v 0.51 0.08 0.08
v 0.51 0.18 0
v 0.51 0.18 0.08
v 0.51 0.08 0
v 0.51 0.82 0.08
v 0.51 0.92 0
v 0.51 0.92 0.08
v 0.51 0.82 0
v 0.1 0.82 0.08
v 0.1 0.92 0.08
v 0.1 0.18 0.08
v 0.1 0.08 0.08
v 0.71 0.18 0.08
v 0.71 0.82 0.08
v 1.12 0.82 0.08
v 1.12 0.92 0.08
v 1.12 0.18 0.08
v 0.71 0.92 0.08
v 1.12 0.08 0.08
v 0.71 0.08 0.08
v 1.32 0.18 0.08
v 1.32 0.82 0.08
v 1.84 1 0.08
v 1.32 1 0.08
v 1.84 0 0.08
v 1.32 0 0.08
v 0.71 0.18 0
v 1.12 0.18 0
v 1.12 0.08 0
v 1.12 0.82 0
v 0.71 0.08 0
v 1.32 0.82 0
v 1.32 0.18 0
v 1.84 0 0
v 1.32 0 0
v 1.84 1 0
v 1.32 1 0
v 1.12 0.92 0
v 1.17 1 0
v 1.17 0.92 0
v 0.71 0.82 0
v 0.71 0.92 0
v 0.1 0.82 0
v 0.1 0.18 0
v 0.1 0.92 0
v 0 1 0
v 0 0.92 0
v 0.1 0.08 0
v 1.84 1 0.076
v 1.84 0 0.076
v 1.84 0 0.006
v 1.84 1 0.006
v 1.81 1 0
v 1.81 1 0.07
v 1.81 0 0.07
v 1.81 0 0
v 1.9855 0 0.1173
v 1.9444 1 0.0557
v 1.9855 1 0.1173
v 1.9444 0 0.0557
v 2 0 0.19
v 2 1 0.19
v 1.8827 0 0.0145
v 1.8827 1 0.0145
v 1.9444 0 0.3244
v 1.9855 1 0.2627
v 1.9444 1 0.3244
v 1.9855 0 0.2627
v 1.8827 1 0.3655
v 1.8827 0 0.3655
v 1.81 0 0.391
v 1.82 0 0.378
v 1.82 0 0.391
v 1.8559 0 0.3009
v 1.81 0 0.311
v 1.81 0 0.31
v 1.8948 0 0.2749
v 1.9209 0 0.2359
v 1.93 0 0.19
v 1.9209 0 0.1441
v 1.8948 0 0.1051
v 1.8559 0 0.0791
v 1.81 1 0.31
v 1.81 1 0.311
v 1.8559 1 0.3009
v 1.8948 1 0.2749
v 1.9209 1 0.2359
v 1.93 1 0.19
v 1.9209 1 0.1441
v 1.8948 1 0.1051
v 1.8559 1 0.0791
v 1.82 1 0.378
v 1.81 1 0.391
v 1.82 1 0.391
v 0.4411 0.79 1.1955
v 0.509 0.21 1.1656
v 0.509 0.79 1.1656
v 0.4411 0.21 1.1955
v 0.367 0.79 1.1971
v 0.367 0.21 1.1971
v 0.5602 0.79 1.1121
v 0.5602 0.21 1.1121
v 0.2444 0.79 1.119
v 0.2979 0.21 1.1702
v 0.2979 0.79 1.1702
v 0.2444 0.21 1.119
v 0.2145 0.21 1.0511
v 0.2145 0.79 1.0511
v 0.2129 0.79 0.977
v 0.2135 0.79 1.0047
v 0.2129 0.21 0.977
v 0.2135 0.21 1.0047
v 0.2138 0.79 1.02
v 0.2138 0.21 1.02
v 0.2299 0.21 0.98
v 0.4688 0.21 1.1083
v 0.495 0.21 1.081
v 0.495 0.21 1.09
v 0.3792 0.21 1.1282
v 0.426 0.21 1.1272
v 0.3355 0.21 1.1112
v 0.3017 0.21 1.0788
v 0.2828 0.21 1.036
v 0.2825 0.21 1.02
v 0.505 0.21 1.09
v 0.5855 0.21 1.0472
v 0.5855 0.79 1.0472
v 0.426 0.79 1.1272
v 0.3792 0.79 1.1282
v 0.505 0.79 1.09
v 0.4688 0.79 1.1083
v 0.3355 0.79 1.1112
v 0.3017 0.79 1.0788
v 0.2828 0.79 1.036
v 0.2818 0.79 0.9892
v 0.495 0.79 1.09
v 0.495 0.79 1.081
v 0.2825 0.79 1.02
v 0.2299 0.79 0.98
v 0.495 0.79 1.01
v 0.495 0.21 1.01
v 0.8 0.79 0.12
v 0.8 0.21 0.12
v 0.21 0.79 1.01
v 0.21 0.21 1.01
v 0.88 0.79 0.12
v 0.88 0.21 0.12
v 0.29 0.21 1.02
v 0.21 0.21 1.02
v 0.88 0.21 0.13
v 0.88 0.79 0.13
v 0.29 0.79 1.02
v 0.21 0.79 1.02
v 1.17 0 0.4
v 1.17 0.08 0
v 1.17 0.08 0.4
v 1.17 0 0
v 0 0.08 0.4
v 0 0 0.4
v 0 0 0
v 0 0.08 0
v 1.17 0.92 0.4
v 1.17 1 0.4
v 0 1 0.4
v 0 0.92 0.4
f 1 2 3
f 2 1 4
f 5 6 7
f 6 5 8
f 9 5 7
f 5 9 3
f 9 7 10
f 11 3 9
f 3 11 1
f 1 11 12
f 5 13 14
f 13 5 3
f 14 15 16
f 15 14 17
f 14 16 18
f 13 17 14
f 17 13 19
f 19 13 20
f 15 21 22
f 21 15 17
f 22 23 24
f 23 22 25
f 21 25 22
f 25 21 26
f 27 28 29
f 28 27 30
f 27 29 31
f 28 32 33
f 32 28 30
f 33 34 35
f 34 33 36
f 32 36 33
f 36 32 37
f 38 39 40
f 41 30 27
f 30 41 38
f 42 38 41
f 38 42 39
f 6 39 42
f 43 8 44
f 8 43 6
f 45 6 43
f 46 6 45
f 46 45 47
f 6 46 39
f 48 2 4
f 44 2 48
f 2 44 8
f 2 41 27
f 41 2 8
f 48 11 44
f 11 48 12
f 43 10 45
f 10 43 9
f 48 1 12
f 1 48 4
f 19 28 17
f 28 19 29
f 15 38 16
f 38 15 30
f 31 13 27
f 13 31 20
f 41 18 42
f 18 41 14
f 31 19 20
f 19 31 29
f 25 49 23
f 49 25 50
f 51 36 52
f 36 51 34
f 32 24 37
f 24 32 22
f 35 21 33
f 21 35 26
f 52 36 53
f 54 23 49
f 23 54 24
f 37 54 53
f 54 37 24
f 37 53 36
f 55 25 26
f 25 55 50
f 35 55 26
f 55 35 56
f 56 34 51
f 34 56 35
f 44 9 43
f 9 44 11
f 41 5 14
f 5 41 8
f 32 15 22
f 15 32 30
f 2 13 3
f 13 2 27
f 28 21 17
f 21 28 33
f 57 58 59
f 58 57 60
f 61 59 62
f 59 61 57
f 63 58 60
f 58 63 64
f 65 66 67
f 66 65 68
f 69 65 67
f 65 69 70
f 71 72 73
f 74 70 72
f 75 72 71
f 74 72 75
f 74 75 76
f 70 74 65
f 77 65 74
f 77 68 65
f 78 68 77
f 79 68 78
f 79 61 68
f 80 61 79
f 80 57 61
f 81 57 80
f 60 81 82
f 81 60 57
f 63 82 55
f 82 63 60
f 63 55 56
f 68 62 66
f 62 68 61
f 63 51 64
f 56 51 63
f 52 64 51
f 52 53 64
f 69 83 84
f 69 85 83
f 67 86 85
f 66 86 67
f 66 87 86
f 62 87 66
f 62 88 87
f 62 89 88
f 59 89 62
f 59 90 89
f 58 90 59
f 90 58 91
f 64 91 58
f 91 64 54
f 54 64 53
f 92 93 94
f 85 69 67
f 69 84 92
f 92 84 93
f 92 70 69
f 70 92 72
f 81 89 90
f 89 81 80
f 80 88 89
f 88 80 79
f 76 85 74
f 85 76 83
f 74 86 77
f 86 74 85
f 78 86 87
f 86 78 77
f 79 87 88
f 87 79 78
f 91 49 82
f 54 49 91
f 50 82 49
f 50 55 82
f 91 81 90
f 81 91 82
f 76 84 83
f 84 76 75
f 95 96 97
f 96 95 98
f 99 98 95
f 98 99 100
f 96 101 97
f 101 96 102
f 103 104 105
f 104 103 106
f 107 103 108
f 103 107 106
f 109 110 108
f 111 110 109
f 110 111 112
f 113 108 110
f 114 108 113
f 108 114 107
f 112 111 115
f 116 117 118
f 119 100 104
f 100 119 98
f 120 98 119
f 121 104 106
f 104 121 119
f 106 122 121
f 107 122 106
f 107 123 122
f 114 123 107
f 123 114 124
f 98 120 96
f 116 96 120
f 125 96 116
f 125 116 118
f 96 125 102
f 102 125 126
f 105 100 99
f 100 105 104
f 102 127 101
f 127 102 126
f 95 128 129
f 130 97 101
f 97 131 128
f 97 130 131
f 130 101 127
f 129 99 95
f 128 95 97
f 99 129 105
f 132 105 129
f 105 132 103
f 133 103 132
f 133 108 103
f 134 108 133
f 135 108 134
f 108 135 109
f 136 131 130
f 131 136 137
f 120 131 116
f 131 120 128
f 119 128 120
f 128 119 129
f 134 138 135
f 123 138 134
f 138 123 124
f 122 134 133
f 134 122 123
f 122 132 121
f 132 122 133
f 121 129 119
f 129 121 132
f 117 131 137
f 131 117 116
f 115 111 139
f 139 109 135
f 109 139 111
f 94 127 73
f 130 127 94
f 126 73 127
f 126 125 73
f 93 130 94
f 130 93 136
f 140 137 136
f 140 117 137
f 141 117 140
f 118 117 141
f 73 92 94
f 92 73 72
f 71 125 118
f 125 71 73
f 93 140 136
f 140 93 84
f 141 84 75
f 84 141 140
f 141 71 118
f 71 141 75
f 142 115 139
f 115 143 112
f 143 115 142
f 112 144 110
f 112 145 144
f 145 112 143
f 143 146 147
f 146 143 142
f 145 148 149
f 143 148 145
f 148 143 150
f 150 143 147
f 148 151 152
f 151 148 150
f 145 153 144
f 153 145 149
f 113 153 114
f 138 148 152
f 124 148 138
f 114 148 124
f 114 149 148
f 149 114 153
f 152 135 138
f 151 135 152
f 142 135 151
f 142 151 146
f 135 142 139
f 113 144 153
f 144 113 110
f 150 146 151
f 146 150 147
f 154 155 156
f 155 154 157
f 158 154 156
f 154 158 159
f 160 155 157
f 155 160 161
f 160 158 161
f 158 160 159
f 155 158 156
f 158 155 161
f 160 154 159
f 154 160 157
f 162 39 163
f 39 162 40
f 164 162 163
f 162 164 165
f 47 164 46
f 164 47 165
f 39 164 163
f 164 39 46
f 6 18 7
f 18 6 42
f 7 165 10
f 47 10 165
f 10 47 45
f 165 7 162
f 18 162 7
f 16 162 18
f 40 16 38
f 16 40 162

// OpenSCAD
ff = 0.01;

thick = 0.08;

total_h = 1.2;

spring_arc_r = 0.19;

module pads(t=thick) {
  translate([0.1, (1-0.84)/2, 0]) {
    cube([0.41, 0.84, t]);
    translate([0.61, 0, 0]) cube([0.41, 0.84, t]);
    translate([1.22, -(1-0.84)/2, 0]) cube([0.52, 1, t]);
  }
}

module footprint() {
  %color("green") pads(t=ff);
}

module floor() {
 pads(thick);
 translate([0.1, (1-0.64)/2, 0]) {
   cube([2-(0.1+spring_arc_r), 0.64, thick]);
 }
}

module outline() {
 %cube([2, 1, total_h]);
}

module side() {
  cube([1.17, thick, 0.4]);
}


module spring_arc(rot=0, wide=1) {

  translate([0, 0, spring_arc_r]) rotate([-90, rot, 0]) {
    difference() {
      translate([0, 0, ((1-wide)/2)]) difference() {
        cylinder(r=spring_arc_r, h=wide, $fn=16);
        translate([0, 0, -ff]) cylinder(r=thick*1.5, h=wide+(ff*2), $fn=16);
      }
      translate([-spring_arc_r, -spring_arc_r-ff, ((1-wide)/2)-ff]) cube([(spring_arc_r*2)/2, (spring_arc_r*2)+ff, wide+(ff*2)]);
    }
  }
}

// I really should have paid attention to geometry in school
module spring_arm() {
  translate([2-spring_arc_r, 0, 0]) spring_arc();

  translate([0.4, 0, total_h-(spring_arc_r*2)]) spring_arc(rot=260, wide=0.58);

  //upper
  hull() {
    translate([0.4+spring_arc_r/2, (1-0.58)/2, total_h-(spring_arc_r*2)+spring_arc_r]) cube([ff, 0.58, thick]);
    translate([2-spring_arc_r, 0, spring_arc_r+(spring_arc_r/(3.14/2))]) cube([ff, 1, thick]);
  }

  //lower
  hull() {
    translate([0, (1-0.58)/2, 0]) {
      translate([0.4-spring_arc_r, 0, total_h-(spring_arc_r)]) cube([thick, 0.58, ff]);
      translate([0.4*2, 0, thick*1.5]) cube([thick, 0.58, ff]);
    }
  }

}

// footprint();
// outline();
side();
translate([0, 1-thick, 0]) side();
floor();
spring_arm();
